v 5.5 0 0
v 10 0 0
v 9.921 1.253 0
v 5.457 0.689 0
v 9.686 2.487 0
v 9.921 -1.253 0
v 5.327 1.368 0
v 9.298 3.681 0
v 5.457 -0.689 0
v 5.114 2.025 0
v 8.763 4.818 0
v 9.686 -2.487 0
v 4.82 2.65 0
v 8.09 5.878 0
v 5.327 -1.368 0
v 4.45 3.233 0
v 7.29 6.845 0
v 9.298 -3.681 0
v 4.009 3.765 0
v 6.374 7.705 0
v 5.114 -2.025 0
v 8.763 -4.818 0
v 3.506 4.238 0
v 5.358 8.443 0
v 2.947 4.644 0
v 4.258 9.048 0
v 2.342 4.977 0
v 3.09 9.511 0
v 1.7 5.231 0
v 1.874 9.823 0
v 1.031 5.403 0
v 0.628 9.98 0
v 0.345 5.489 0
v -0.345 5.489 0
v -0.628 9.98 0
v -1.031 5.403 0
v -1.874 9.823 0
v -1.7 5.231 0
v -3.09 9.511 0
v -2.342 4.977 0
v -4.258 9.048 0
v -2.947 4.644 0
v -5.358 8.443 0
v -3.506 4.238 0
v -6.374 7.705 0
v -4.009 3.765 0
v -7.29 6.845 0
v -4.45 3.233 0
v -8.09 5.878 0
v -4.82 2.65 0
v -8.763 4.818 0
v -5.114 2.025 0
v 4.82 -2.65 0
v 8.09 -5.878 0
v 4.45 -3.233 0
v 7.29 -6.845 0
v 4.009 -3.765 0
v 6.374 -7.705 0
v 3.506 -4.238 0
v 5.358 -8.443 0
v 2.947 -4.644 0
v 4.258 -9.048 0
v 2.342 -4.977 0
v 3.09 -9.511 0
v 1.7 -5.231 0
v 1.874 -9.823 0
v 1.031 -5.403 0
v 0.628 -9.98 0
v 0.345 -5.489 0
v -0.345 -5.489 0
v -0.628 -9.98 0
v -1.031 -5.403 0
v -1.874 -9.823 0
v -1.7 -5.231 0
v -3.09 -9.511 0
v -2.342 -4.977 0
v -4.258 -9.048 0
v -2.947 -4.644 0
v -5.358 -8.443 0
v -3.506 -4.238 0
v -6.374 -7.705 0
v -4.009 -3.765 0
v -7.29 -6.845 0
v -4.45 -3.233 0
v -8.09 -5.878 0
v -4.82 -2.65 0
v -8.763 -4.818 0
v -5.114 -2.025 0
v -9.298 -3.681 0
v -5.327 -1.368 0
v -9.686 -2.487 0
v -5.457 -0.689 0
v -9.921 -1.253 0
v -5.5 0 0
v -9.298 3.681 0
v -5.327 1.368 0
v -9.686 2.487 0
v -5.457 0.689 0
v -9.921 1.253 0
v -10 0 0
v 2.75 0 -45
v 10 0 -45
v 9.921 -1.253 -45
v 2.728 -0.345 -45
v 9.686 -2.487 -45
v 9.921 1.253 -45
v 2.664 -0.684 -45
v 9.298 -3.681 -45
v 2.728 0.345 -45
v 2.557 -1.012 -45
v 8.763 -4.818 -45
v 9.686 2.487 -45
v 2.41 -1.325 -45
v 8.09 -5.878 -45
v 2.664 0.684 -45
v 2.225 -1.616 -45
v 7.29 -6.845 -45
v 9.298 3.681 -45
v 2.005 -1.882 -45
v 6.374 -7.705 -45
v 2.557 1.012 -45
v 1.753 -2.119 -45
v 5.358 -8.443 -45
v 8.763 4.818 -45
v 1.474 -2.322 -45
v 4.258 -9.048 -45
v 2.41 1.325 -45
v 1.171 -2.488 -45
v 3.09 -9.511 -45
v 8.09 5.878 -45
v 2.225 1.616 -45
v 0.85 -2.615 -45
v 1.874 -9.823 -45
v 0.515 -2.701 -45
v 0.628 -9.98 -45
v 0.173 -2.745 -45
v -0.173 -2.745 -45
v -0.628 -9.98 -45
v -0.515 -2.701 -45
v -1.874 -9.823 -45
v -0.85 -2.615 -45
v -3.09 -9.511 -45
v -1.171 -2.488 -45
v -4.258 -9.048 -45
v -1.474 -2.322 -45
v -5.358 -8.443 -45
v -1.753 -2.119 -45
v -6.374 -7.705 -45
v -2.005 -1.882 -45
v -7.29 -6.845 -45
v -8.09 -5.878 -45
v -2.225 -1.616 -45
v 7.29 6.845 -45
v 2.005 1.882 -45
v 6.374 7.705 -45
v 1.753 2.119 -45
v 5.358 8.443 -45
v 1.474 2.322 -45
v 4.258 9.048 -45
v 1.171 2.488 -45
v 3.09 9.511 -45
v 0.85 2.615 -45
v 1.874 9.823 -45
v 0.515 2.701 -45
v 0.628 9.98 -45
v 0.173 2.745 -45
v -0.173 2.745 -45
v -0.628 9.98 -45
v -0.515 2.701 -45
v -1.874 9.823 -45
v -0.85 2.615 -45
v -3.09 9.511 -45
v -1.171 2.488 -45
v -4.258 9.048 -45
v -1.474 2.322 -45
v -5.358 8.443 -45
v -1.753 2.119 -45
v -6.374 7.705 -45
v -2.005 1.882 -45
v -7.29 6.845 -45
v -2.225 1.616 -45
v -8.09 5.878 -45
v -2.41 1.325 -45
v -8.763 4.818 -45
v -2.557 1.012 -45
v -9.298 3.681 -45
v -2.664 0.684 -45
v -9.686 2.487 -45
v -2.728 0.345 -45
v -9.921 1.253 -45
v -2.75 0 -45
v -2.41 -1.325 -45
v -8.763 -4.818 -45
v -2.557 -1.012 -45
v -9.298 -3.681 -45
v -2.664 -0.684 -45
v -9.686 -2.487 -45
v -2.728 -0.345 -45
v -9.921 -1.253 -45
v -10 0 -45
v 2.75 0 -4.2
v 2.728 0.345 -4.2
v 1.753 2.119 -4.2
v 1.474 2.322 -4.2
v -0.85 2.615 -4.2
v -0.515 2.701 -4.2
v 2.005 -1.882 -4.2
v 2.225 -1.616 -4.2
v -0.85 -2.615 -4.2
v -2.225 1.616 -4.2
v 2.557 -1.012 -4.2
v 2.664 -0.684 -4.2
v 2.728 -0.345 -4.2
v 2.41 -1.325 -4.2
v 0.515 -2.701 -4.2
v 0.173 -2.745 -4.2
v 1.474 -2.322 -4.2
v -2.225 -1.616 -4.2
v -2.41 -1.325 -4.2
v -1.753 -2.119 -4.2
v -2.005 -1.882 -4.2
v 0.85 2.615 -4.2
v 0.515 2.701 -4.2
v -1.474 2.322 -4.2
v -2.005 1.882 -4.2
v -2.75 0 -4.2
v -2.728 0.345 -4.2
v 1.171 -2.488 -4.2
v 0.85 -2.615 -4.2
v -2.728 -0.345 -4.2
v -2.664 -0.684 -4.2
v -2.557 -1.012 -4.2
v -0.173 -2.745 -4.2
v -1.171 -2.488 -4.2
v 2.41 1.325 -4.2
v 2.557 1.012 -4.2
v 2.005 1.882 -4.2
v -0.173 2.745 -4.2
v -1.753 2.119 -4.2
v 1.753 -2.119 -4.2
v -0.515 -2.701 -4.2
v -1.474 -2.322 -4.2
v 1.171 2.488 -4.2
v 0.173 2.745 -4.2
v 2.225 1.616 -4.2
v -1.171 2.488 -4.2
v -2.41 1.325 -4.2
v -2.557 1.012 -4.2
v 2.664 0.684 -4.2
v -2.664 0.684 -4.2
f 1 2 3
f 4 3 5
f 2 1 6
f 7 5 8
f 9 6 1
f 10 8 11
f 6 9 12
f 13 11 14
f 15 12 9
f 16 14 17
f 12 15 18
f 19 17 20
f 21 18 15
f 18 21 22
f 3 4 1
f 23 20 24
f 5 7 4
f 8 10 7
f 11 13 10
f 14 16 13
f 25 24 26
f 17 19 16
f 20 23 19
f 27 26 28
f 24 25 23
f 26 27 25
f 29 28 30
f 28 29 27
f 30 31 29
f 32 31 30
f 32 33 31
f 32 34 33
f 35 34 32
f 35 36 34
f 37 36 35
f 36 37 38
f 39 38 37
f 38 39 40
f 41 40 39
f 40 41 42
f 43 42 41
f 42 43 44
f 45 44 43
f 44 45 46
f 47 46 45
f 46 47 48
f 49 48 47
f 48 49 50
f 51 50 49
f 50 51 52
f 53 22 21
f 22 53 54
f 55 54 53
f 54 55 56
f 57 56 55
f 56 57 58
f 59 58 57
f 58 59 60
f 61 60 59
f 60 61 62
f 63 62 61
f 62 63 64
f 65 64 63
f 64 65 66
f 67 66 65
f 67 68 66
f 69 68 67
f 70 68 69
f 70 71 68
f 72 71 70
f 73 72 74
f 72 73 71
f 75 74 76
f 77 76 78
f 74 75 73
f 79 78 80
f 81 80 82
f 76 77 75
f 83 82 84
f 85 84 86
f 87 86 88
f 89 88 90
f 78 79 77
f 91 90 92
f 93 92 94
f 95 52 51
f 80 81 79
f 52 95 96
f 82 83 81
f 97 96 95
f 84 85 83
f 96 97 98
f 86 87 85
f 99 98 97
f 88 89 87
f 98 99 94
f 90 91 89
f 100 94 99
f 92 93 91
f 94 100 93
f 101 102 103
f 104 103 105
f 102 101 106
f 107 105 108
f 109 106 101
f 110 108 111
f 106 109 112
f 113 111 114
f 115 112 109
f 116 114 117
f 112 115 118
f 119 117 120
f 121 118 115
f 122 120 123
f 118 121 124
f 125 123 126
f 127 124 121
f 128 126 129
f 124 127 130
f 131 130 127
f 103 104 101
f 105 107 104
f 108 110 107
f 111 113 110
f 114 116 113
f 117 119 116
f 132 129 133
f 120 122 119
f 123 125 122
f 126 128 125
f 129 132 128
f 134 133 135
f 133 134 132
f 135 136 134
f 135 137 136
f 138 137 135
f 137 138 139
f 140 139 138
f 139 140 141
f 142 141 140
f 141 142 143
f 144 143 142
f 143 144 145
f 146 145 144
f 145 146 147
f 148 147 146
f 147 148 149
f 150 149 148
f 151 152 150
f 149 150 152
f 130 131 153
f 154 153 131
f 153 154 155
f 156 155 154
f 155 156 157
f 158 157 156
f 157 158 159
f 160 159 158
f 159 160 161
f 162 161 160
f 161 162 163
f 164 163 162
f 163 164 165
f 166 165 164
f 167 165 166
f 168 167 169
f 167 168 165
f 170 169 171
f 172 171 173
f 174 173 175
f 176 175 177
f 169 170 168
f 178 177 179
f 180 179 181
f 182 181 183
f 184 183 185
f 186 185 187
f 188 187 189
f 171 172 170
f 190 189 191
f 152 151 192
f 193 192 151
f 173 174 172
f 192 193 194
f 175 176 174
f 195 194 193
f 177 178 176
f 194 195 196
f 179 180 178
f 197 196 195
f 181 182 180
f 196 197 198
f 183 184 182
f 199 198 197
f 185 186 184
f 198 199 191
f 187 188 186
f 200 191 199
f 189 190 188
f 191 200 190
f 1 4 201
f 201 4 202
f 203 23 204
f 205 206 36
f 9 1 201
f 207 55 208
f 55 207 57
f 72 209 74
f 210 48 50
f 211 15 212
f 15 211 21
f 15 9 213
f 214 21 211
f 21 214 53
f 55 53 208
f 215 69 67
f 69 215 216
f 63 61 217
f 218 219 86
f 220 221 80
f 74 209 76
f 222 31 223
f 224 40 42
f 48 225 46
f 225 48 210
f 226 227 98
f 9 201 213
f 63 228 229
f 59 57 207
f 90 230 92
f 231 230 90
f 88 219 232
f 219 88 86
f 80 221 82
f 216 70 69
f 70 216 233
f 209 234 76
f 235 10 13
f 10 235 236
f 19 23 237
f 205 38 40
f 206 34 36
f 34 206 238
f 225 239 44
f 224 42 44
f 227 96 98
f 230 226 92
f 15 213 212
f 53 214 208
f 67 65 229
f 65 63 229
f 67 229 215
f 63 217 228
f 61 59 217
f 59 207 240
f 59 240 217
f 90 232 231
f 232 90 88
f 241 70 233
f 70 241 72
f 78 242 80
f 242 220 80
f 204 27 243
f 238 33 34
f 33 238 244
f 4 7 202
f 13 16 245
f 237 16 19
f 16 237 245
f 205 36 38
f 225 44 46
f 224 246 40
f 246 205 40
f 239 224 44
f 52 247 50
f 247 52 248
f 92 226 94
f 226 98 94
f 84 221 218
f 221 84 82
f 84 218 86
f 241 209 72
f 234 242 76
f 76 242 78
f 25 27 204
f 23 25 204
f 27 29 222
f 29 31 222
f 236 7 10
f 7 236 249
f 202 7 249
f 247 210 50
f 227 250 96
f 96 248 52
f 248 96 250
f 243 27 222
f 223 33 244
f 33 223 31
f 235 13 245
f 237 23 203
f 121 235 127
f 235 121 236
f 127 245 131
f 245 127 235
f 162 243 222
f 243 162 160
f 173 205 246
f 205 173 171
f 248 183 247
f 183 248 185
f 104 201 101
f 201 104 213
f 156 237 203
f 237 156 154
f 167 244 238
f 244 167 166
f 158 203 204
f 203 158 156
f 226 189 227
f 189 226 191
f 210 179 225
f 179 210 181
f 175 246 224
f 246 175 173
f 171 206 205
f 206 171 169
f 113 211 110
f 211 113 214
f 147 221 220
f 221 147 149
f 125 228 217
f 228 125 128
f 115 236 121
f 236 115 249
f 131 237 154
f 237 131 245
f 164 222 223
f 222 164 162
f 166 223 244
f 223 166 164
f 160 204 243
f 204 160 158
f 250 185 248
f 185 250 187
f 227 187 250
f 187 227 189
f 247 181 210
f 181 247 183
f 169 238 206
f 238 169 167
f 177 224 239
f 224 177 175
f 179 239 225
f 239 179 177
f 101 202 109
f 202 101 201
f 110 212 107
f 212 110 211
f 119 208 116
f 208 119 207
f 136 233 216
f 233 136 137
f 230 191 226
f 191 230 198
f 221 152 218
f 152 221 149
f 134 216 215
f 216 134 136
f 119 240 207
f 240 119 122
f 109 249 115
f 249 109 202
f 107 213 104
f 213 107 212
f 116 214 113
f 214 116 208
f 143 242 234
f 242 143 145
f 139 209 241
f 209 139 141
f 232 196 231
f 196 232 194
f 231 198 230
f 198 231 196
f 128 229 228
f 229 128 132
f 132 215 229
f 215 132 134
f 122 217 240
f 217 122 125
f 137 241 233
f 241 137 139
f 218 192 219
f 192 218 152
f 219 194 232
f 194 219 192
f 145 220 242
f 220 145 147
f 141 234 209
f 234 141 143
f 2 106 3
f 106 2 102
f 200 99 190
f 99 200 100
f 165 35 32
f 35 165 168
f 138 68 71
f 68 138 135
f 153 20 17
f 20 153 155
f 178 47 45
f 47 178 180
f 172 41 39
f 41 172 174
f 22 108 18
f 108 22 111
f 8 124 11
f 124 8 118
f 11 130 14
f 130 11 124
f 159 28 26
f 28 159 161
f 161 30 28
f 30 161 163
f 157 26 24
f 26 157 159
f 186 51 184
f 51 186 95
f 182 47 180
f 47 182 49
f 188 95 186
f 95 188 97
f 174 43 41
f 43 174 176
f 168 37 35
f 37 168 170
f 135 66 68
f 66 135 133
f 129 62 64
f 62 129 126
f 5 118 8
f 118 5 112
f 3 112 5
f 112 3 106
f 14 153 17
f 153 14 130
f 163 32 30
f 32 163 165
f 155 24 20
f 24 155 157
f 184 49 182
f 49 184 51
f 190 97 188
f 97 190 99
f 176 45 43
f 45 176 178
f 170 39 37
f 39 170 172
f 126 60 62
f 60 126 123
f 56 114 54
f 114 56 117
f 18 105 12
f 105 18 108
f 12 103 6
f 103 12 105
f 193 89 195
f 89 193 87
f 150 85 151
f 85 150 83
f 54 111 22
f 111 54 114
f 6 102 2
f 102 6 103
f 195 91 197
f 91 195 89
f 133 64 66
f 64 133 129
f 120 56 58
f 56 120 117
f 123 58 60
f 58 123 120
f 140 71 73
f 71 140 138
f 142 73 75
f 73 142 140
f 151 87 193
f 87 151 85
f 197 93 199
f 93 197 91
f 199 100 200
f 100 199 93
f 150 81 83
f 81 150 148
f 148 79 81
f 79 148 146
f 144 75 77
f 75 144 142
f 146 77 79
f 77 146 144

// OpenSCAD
$fn = 50;


difference() {
	union() {
		translate(v = [0, 0, -45.0000000000]) {
			cylinder(h = 45, r = 10.0000000000);
		}
		cylinder(h = 0, r = 19.0000000000);
	}
	union() {
		translate(v = [0, 0, 0]) {
			rotate(a = [0, 0, 0]) {
				difference() {
					union() {
						#translate(v = [0, 0, -45.0000000000]) {
							cylinder(h = 45, r = 2.2500000000);
						}
						#translate(v = [0, 0, -4.2000000000]) {
							cylinder(h = 4.2000000000, r = 10.0000000000, r1 = 2.7500000000, r2 = 5.5000000000);
						}
						#translate(v = [0, 0, -45.0000000000]) {
							cylinder(h = 45, r = 2.7500000000);
						}
						#translate(v = [0, 0, -45.0000000000]) {
							cylinder(h = 45, r = 2.2500000000);
						}
					}
					union();
				}
			}
		}
	}
}
